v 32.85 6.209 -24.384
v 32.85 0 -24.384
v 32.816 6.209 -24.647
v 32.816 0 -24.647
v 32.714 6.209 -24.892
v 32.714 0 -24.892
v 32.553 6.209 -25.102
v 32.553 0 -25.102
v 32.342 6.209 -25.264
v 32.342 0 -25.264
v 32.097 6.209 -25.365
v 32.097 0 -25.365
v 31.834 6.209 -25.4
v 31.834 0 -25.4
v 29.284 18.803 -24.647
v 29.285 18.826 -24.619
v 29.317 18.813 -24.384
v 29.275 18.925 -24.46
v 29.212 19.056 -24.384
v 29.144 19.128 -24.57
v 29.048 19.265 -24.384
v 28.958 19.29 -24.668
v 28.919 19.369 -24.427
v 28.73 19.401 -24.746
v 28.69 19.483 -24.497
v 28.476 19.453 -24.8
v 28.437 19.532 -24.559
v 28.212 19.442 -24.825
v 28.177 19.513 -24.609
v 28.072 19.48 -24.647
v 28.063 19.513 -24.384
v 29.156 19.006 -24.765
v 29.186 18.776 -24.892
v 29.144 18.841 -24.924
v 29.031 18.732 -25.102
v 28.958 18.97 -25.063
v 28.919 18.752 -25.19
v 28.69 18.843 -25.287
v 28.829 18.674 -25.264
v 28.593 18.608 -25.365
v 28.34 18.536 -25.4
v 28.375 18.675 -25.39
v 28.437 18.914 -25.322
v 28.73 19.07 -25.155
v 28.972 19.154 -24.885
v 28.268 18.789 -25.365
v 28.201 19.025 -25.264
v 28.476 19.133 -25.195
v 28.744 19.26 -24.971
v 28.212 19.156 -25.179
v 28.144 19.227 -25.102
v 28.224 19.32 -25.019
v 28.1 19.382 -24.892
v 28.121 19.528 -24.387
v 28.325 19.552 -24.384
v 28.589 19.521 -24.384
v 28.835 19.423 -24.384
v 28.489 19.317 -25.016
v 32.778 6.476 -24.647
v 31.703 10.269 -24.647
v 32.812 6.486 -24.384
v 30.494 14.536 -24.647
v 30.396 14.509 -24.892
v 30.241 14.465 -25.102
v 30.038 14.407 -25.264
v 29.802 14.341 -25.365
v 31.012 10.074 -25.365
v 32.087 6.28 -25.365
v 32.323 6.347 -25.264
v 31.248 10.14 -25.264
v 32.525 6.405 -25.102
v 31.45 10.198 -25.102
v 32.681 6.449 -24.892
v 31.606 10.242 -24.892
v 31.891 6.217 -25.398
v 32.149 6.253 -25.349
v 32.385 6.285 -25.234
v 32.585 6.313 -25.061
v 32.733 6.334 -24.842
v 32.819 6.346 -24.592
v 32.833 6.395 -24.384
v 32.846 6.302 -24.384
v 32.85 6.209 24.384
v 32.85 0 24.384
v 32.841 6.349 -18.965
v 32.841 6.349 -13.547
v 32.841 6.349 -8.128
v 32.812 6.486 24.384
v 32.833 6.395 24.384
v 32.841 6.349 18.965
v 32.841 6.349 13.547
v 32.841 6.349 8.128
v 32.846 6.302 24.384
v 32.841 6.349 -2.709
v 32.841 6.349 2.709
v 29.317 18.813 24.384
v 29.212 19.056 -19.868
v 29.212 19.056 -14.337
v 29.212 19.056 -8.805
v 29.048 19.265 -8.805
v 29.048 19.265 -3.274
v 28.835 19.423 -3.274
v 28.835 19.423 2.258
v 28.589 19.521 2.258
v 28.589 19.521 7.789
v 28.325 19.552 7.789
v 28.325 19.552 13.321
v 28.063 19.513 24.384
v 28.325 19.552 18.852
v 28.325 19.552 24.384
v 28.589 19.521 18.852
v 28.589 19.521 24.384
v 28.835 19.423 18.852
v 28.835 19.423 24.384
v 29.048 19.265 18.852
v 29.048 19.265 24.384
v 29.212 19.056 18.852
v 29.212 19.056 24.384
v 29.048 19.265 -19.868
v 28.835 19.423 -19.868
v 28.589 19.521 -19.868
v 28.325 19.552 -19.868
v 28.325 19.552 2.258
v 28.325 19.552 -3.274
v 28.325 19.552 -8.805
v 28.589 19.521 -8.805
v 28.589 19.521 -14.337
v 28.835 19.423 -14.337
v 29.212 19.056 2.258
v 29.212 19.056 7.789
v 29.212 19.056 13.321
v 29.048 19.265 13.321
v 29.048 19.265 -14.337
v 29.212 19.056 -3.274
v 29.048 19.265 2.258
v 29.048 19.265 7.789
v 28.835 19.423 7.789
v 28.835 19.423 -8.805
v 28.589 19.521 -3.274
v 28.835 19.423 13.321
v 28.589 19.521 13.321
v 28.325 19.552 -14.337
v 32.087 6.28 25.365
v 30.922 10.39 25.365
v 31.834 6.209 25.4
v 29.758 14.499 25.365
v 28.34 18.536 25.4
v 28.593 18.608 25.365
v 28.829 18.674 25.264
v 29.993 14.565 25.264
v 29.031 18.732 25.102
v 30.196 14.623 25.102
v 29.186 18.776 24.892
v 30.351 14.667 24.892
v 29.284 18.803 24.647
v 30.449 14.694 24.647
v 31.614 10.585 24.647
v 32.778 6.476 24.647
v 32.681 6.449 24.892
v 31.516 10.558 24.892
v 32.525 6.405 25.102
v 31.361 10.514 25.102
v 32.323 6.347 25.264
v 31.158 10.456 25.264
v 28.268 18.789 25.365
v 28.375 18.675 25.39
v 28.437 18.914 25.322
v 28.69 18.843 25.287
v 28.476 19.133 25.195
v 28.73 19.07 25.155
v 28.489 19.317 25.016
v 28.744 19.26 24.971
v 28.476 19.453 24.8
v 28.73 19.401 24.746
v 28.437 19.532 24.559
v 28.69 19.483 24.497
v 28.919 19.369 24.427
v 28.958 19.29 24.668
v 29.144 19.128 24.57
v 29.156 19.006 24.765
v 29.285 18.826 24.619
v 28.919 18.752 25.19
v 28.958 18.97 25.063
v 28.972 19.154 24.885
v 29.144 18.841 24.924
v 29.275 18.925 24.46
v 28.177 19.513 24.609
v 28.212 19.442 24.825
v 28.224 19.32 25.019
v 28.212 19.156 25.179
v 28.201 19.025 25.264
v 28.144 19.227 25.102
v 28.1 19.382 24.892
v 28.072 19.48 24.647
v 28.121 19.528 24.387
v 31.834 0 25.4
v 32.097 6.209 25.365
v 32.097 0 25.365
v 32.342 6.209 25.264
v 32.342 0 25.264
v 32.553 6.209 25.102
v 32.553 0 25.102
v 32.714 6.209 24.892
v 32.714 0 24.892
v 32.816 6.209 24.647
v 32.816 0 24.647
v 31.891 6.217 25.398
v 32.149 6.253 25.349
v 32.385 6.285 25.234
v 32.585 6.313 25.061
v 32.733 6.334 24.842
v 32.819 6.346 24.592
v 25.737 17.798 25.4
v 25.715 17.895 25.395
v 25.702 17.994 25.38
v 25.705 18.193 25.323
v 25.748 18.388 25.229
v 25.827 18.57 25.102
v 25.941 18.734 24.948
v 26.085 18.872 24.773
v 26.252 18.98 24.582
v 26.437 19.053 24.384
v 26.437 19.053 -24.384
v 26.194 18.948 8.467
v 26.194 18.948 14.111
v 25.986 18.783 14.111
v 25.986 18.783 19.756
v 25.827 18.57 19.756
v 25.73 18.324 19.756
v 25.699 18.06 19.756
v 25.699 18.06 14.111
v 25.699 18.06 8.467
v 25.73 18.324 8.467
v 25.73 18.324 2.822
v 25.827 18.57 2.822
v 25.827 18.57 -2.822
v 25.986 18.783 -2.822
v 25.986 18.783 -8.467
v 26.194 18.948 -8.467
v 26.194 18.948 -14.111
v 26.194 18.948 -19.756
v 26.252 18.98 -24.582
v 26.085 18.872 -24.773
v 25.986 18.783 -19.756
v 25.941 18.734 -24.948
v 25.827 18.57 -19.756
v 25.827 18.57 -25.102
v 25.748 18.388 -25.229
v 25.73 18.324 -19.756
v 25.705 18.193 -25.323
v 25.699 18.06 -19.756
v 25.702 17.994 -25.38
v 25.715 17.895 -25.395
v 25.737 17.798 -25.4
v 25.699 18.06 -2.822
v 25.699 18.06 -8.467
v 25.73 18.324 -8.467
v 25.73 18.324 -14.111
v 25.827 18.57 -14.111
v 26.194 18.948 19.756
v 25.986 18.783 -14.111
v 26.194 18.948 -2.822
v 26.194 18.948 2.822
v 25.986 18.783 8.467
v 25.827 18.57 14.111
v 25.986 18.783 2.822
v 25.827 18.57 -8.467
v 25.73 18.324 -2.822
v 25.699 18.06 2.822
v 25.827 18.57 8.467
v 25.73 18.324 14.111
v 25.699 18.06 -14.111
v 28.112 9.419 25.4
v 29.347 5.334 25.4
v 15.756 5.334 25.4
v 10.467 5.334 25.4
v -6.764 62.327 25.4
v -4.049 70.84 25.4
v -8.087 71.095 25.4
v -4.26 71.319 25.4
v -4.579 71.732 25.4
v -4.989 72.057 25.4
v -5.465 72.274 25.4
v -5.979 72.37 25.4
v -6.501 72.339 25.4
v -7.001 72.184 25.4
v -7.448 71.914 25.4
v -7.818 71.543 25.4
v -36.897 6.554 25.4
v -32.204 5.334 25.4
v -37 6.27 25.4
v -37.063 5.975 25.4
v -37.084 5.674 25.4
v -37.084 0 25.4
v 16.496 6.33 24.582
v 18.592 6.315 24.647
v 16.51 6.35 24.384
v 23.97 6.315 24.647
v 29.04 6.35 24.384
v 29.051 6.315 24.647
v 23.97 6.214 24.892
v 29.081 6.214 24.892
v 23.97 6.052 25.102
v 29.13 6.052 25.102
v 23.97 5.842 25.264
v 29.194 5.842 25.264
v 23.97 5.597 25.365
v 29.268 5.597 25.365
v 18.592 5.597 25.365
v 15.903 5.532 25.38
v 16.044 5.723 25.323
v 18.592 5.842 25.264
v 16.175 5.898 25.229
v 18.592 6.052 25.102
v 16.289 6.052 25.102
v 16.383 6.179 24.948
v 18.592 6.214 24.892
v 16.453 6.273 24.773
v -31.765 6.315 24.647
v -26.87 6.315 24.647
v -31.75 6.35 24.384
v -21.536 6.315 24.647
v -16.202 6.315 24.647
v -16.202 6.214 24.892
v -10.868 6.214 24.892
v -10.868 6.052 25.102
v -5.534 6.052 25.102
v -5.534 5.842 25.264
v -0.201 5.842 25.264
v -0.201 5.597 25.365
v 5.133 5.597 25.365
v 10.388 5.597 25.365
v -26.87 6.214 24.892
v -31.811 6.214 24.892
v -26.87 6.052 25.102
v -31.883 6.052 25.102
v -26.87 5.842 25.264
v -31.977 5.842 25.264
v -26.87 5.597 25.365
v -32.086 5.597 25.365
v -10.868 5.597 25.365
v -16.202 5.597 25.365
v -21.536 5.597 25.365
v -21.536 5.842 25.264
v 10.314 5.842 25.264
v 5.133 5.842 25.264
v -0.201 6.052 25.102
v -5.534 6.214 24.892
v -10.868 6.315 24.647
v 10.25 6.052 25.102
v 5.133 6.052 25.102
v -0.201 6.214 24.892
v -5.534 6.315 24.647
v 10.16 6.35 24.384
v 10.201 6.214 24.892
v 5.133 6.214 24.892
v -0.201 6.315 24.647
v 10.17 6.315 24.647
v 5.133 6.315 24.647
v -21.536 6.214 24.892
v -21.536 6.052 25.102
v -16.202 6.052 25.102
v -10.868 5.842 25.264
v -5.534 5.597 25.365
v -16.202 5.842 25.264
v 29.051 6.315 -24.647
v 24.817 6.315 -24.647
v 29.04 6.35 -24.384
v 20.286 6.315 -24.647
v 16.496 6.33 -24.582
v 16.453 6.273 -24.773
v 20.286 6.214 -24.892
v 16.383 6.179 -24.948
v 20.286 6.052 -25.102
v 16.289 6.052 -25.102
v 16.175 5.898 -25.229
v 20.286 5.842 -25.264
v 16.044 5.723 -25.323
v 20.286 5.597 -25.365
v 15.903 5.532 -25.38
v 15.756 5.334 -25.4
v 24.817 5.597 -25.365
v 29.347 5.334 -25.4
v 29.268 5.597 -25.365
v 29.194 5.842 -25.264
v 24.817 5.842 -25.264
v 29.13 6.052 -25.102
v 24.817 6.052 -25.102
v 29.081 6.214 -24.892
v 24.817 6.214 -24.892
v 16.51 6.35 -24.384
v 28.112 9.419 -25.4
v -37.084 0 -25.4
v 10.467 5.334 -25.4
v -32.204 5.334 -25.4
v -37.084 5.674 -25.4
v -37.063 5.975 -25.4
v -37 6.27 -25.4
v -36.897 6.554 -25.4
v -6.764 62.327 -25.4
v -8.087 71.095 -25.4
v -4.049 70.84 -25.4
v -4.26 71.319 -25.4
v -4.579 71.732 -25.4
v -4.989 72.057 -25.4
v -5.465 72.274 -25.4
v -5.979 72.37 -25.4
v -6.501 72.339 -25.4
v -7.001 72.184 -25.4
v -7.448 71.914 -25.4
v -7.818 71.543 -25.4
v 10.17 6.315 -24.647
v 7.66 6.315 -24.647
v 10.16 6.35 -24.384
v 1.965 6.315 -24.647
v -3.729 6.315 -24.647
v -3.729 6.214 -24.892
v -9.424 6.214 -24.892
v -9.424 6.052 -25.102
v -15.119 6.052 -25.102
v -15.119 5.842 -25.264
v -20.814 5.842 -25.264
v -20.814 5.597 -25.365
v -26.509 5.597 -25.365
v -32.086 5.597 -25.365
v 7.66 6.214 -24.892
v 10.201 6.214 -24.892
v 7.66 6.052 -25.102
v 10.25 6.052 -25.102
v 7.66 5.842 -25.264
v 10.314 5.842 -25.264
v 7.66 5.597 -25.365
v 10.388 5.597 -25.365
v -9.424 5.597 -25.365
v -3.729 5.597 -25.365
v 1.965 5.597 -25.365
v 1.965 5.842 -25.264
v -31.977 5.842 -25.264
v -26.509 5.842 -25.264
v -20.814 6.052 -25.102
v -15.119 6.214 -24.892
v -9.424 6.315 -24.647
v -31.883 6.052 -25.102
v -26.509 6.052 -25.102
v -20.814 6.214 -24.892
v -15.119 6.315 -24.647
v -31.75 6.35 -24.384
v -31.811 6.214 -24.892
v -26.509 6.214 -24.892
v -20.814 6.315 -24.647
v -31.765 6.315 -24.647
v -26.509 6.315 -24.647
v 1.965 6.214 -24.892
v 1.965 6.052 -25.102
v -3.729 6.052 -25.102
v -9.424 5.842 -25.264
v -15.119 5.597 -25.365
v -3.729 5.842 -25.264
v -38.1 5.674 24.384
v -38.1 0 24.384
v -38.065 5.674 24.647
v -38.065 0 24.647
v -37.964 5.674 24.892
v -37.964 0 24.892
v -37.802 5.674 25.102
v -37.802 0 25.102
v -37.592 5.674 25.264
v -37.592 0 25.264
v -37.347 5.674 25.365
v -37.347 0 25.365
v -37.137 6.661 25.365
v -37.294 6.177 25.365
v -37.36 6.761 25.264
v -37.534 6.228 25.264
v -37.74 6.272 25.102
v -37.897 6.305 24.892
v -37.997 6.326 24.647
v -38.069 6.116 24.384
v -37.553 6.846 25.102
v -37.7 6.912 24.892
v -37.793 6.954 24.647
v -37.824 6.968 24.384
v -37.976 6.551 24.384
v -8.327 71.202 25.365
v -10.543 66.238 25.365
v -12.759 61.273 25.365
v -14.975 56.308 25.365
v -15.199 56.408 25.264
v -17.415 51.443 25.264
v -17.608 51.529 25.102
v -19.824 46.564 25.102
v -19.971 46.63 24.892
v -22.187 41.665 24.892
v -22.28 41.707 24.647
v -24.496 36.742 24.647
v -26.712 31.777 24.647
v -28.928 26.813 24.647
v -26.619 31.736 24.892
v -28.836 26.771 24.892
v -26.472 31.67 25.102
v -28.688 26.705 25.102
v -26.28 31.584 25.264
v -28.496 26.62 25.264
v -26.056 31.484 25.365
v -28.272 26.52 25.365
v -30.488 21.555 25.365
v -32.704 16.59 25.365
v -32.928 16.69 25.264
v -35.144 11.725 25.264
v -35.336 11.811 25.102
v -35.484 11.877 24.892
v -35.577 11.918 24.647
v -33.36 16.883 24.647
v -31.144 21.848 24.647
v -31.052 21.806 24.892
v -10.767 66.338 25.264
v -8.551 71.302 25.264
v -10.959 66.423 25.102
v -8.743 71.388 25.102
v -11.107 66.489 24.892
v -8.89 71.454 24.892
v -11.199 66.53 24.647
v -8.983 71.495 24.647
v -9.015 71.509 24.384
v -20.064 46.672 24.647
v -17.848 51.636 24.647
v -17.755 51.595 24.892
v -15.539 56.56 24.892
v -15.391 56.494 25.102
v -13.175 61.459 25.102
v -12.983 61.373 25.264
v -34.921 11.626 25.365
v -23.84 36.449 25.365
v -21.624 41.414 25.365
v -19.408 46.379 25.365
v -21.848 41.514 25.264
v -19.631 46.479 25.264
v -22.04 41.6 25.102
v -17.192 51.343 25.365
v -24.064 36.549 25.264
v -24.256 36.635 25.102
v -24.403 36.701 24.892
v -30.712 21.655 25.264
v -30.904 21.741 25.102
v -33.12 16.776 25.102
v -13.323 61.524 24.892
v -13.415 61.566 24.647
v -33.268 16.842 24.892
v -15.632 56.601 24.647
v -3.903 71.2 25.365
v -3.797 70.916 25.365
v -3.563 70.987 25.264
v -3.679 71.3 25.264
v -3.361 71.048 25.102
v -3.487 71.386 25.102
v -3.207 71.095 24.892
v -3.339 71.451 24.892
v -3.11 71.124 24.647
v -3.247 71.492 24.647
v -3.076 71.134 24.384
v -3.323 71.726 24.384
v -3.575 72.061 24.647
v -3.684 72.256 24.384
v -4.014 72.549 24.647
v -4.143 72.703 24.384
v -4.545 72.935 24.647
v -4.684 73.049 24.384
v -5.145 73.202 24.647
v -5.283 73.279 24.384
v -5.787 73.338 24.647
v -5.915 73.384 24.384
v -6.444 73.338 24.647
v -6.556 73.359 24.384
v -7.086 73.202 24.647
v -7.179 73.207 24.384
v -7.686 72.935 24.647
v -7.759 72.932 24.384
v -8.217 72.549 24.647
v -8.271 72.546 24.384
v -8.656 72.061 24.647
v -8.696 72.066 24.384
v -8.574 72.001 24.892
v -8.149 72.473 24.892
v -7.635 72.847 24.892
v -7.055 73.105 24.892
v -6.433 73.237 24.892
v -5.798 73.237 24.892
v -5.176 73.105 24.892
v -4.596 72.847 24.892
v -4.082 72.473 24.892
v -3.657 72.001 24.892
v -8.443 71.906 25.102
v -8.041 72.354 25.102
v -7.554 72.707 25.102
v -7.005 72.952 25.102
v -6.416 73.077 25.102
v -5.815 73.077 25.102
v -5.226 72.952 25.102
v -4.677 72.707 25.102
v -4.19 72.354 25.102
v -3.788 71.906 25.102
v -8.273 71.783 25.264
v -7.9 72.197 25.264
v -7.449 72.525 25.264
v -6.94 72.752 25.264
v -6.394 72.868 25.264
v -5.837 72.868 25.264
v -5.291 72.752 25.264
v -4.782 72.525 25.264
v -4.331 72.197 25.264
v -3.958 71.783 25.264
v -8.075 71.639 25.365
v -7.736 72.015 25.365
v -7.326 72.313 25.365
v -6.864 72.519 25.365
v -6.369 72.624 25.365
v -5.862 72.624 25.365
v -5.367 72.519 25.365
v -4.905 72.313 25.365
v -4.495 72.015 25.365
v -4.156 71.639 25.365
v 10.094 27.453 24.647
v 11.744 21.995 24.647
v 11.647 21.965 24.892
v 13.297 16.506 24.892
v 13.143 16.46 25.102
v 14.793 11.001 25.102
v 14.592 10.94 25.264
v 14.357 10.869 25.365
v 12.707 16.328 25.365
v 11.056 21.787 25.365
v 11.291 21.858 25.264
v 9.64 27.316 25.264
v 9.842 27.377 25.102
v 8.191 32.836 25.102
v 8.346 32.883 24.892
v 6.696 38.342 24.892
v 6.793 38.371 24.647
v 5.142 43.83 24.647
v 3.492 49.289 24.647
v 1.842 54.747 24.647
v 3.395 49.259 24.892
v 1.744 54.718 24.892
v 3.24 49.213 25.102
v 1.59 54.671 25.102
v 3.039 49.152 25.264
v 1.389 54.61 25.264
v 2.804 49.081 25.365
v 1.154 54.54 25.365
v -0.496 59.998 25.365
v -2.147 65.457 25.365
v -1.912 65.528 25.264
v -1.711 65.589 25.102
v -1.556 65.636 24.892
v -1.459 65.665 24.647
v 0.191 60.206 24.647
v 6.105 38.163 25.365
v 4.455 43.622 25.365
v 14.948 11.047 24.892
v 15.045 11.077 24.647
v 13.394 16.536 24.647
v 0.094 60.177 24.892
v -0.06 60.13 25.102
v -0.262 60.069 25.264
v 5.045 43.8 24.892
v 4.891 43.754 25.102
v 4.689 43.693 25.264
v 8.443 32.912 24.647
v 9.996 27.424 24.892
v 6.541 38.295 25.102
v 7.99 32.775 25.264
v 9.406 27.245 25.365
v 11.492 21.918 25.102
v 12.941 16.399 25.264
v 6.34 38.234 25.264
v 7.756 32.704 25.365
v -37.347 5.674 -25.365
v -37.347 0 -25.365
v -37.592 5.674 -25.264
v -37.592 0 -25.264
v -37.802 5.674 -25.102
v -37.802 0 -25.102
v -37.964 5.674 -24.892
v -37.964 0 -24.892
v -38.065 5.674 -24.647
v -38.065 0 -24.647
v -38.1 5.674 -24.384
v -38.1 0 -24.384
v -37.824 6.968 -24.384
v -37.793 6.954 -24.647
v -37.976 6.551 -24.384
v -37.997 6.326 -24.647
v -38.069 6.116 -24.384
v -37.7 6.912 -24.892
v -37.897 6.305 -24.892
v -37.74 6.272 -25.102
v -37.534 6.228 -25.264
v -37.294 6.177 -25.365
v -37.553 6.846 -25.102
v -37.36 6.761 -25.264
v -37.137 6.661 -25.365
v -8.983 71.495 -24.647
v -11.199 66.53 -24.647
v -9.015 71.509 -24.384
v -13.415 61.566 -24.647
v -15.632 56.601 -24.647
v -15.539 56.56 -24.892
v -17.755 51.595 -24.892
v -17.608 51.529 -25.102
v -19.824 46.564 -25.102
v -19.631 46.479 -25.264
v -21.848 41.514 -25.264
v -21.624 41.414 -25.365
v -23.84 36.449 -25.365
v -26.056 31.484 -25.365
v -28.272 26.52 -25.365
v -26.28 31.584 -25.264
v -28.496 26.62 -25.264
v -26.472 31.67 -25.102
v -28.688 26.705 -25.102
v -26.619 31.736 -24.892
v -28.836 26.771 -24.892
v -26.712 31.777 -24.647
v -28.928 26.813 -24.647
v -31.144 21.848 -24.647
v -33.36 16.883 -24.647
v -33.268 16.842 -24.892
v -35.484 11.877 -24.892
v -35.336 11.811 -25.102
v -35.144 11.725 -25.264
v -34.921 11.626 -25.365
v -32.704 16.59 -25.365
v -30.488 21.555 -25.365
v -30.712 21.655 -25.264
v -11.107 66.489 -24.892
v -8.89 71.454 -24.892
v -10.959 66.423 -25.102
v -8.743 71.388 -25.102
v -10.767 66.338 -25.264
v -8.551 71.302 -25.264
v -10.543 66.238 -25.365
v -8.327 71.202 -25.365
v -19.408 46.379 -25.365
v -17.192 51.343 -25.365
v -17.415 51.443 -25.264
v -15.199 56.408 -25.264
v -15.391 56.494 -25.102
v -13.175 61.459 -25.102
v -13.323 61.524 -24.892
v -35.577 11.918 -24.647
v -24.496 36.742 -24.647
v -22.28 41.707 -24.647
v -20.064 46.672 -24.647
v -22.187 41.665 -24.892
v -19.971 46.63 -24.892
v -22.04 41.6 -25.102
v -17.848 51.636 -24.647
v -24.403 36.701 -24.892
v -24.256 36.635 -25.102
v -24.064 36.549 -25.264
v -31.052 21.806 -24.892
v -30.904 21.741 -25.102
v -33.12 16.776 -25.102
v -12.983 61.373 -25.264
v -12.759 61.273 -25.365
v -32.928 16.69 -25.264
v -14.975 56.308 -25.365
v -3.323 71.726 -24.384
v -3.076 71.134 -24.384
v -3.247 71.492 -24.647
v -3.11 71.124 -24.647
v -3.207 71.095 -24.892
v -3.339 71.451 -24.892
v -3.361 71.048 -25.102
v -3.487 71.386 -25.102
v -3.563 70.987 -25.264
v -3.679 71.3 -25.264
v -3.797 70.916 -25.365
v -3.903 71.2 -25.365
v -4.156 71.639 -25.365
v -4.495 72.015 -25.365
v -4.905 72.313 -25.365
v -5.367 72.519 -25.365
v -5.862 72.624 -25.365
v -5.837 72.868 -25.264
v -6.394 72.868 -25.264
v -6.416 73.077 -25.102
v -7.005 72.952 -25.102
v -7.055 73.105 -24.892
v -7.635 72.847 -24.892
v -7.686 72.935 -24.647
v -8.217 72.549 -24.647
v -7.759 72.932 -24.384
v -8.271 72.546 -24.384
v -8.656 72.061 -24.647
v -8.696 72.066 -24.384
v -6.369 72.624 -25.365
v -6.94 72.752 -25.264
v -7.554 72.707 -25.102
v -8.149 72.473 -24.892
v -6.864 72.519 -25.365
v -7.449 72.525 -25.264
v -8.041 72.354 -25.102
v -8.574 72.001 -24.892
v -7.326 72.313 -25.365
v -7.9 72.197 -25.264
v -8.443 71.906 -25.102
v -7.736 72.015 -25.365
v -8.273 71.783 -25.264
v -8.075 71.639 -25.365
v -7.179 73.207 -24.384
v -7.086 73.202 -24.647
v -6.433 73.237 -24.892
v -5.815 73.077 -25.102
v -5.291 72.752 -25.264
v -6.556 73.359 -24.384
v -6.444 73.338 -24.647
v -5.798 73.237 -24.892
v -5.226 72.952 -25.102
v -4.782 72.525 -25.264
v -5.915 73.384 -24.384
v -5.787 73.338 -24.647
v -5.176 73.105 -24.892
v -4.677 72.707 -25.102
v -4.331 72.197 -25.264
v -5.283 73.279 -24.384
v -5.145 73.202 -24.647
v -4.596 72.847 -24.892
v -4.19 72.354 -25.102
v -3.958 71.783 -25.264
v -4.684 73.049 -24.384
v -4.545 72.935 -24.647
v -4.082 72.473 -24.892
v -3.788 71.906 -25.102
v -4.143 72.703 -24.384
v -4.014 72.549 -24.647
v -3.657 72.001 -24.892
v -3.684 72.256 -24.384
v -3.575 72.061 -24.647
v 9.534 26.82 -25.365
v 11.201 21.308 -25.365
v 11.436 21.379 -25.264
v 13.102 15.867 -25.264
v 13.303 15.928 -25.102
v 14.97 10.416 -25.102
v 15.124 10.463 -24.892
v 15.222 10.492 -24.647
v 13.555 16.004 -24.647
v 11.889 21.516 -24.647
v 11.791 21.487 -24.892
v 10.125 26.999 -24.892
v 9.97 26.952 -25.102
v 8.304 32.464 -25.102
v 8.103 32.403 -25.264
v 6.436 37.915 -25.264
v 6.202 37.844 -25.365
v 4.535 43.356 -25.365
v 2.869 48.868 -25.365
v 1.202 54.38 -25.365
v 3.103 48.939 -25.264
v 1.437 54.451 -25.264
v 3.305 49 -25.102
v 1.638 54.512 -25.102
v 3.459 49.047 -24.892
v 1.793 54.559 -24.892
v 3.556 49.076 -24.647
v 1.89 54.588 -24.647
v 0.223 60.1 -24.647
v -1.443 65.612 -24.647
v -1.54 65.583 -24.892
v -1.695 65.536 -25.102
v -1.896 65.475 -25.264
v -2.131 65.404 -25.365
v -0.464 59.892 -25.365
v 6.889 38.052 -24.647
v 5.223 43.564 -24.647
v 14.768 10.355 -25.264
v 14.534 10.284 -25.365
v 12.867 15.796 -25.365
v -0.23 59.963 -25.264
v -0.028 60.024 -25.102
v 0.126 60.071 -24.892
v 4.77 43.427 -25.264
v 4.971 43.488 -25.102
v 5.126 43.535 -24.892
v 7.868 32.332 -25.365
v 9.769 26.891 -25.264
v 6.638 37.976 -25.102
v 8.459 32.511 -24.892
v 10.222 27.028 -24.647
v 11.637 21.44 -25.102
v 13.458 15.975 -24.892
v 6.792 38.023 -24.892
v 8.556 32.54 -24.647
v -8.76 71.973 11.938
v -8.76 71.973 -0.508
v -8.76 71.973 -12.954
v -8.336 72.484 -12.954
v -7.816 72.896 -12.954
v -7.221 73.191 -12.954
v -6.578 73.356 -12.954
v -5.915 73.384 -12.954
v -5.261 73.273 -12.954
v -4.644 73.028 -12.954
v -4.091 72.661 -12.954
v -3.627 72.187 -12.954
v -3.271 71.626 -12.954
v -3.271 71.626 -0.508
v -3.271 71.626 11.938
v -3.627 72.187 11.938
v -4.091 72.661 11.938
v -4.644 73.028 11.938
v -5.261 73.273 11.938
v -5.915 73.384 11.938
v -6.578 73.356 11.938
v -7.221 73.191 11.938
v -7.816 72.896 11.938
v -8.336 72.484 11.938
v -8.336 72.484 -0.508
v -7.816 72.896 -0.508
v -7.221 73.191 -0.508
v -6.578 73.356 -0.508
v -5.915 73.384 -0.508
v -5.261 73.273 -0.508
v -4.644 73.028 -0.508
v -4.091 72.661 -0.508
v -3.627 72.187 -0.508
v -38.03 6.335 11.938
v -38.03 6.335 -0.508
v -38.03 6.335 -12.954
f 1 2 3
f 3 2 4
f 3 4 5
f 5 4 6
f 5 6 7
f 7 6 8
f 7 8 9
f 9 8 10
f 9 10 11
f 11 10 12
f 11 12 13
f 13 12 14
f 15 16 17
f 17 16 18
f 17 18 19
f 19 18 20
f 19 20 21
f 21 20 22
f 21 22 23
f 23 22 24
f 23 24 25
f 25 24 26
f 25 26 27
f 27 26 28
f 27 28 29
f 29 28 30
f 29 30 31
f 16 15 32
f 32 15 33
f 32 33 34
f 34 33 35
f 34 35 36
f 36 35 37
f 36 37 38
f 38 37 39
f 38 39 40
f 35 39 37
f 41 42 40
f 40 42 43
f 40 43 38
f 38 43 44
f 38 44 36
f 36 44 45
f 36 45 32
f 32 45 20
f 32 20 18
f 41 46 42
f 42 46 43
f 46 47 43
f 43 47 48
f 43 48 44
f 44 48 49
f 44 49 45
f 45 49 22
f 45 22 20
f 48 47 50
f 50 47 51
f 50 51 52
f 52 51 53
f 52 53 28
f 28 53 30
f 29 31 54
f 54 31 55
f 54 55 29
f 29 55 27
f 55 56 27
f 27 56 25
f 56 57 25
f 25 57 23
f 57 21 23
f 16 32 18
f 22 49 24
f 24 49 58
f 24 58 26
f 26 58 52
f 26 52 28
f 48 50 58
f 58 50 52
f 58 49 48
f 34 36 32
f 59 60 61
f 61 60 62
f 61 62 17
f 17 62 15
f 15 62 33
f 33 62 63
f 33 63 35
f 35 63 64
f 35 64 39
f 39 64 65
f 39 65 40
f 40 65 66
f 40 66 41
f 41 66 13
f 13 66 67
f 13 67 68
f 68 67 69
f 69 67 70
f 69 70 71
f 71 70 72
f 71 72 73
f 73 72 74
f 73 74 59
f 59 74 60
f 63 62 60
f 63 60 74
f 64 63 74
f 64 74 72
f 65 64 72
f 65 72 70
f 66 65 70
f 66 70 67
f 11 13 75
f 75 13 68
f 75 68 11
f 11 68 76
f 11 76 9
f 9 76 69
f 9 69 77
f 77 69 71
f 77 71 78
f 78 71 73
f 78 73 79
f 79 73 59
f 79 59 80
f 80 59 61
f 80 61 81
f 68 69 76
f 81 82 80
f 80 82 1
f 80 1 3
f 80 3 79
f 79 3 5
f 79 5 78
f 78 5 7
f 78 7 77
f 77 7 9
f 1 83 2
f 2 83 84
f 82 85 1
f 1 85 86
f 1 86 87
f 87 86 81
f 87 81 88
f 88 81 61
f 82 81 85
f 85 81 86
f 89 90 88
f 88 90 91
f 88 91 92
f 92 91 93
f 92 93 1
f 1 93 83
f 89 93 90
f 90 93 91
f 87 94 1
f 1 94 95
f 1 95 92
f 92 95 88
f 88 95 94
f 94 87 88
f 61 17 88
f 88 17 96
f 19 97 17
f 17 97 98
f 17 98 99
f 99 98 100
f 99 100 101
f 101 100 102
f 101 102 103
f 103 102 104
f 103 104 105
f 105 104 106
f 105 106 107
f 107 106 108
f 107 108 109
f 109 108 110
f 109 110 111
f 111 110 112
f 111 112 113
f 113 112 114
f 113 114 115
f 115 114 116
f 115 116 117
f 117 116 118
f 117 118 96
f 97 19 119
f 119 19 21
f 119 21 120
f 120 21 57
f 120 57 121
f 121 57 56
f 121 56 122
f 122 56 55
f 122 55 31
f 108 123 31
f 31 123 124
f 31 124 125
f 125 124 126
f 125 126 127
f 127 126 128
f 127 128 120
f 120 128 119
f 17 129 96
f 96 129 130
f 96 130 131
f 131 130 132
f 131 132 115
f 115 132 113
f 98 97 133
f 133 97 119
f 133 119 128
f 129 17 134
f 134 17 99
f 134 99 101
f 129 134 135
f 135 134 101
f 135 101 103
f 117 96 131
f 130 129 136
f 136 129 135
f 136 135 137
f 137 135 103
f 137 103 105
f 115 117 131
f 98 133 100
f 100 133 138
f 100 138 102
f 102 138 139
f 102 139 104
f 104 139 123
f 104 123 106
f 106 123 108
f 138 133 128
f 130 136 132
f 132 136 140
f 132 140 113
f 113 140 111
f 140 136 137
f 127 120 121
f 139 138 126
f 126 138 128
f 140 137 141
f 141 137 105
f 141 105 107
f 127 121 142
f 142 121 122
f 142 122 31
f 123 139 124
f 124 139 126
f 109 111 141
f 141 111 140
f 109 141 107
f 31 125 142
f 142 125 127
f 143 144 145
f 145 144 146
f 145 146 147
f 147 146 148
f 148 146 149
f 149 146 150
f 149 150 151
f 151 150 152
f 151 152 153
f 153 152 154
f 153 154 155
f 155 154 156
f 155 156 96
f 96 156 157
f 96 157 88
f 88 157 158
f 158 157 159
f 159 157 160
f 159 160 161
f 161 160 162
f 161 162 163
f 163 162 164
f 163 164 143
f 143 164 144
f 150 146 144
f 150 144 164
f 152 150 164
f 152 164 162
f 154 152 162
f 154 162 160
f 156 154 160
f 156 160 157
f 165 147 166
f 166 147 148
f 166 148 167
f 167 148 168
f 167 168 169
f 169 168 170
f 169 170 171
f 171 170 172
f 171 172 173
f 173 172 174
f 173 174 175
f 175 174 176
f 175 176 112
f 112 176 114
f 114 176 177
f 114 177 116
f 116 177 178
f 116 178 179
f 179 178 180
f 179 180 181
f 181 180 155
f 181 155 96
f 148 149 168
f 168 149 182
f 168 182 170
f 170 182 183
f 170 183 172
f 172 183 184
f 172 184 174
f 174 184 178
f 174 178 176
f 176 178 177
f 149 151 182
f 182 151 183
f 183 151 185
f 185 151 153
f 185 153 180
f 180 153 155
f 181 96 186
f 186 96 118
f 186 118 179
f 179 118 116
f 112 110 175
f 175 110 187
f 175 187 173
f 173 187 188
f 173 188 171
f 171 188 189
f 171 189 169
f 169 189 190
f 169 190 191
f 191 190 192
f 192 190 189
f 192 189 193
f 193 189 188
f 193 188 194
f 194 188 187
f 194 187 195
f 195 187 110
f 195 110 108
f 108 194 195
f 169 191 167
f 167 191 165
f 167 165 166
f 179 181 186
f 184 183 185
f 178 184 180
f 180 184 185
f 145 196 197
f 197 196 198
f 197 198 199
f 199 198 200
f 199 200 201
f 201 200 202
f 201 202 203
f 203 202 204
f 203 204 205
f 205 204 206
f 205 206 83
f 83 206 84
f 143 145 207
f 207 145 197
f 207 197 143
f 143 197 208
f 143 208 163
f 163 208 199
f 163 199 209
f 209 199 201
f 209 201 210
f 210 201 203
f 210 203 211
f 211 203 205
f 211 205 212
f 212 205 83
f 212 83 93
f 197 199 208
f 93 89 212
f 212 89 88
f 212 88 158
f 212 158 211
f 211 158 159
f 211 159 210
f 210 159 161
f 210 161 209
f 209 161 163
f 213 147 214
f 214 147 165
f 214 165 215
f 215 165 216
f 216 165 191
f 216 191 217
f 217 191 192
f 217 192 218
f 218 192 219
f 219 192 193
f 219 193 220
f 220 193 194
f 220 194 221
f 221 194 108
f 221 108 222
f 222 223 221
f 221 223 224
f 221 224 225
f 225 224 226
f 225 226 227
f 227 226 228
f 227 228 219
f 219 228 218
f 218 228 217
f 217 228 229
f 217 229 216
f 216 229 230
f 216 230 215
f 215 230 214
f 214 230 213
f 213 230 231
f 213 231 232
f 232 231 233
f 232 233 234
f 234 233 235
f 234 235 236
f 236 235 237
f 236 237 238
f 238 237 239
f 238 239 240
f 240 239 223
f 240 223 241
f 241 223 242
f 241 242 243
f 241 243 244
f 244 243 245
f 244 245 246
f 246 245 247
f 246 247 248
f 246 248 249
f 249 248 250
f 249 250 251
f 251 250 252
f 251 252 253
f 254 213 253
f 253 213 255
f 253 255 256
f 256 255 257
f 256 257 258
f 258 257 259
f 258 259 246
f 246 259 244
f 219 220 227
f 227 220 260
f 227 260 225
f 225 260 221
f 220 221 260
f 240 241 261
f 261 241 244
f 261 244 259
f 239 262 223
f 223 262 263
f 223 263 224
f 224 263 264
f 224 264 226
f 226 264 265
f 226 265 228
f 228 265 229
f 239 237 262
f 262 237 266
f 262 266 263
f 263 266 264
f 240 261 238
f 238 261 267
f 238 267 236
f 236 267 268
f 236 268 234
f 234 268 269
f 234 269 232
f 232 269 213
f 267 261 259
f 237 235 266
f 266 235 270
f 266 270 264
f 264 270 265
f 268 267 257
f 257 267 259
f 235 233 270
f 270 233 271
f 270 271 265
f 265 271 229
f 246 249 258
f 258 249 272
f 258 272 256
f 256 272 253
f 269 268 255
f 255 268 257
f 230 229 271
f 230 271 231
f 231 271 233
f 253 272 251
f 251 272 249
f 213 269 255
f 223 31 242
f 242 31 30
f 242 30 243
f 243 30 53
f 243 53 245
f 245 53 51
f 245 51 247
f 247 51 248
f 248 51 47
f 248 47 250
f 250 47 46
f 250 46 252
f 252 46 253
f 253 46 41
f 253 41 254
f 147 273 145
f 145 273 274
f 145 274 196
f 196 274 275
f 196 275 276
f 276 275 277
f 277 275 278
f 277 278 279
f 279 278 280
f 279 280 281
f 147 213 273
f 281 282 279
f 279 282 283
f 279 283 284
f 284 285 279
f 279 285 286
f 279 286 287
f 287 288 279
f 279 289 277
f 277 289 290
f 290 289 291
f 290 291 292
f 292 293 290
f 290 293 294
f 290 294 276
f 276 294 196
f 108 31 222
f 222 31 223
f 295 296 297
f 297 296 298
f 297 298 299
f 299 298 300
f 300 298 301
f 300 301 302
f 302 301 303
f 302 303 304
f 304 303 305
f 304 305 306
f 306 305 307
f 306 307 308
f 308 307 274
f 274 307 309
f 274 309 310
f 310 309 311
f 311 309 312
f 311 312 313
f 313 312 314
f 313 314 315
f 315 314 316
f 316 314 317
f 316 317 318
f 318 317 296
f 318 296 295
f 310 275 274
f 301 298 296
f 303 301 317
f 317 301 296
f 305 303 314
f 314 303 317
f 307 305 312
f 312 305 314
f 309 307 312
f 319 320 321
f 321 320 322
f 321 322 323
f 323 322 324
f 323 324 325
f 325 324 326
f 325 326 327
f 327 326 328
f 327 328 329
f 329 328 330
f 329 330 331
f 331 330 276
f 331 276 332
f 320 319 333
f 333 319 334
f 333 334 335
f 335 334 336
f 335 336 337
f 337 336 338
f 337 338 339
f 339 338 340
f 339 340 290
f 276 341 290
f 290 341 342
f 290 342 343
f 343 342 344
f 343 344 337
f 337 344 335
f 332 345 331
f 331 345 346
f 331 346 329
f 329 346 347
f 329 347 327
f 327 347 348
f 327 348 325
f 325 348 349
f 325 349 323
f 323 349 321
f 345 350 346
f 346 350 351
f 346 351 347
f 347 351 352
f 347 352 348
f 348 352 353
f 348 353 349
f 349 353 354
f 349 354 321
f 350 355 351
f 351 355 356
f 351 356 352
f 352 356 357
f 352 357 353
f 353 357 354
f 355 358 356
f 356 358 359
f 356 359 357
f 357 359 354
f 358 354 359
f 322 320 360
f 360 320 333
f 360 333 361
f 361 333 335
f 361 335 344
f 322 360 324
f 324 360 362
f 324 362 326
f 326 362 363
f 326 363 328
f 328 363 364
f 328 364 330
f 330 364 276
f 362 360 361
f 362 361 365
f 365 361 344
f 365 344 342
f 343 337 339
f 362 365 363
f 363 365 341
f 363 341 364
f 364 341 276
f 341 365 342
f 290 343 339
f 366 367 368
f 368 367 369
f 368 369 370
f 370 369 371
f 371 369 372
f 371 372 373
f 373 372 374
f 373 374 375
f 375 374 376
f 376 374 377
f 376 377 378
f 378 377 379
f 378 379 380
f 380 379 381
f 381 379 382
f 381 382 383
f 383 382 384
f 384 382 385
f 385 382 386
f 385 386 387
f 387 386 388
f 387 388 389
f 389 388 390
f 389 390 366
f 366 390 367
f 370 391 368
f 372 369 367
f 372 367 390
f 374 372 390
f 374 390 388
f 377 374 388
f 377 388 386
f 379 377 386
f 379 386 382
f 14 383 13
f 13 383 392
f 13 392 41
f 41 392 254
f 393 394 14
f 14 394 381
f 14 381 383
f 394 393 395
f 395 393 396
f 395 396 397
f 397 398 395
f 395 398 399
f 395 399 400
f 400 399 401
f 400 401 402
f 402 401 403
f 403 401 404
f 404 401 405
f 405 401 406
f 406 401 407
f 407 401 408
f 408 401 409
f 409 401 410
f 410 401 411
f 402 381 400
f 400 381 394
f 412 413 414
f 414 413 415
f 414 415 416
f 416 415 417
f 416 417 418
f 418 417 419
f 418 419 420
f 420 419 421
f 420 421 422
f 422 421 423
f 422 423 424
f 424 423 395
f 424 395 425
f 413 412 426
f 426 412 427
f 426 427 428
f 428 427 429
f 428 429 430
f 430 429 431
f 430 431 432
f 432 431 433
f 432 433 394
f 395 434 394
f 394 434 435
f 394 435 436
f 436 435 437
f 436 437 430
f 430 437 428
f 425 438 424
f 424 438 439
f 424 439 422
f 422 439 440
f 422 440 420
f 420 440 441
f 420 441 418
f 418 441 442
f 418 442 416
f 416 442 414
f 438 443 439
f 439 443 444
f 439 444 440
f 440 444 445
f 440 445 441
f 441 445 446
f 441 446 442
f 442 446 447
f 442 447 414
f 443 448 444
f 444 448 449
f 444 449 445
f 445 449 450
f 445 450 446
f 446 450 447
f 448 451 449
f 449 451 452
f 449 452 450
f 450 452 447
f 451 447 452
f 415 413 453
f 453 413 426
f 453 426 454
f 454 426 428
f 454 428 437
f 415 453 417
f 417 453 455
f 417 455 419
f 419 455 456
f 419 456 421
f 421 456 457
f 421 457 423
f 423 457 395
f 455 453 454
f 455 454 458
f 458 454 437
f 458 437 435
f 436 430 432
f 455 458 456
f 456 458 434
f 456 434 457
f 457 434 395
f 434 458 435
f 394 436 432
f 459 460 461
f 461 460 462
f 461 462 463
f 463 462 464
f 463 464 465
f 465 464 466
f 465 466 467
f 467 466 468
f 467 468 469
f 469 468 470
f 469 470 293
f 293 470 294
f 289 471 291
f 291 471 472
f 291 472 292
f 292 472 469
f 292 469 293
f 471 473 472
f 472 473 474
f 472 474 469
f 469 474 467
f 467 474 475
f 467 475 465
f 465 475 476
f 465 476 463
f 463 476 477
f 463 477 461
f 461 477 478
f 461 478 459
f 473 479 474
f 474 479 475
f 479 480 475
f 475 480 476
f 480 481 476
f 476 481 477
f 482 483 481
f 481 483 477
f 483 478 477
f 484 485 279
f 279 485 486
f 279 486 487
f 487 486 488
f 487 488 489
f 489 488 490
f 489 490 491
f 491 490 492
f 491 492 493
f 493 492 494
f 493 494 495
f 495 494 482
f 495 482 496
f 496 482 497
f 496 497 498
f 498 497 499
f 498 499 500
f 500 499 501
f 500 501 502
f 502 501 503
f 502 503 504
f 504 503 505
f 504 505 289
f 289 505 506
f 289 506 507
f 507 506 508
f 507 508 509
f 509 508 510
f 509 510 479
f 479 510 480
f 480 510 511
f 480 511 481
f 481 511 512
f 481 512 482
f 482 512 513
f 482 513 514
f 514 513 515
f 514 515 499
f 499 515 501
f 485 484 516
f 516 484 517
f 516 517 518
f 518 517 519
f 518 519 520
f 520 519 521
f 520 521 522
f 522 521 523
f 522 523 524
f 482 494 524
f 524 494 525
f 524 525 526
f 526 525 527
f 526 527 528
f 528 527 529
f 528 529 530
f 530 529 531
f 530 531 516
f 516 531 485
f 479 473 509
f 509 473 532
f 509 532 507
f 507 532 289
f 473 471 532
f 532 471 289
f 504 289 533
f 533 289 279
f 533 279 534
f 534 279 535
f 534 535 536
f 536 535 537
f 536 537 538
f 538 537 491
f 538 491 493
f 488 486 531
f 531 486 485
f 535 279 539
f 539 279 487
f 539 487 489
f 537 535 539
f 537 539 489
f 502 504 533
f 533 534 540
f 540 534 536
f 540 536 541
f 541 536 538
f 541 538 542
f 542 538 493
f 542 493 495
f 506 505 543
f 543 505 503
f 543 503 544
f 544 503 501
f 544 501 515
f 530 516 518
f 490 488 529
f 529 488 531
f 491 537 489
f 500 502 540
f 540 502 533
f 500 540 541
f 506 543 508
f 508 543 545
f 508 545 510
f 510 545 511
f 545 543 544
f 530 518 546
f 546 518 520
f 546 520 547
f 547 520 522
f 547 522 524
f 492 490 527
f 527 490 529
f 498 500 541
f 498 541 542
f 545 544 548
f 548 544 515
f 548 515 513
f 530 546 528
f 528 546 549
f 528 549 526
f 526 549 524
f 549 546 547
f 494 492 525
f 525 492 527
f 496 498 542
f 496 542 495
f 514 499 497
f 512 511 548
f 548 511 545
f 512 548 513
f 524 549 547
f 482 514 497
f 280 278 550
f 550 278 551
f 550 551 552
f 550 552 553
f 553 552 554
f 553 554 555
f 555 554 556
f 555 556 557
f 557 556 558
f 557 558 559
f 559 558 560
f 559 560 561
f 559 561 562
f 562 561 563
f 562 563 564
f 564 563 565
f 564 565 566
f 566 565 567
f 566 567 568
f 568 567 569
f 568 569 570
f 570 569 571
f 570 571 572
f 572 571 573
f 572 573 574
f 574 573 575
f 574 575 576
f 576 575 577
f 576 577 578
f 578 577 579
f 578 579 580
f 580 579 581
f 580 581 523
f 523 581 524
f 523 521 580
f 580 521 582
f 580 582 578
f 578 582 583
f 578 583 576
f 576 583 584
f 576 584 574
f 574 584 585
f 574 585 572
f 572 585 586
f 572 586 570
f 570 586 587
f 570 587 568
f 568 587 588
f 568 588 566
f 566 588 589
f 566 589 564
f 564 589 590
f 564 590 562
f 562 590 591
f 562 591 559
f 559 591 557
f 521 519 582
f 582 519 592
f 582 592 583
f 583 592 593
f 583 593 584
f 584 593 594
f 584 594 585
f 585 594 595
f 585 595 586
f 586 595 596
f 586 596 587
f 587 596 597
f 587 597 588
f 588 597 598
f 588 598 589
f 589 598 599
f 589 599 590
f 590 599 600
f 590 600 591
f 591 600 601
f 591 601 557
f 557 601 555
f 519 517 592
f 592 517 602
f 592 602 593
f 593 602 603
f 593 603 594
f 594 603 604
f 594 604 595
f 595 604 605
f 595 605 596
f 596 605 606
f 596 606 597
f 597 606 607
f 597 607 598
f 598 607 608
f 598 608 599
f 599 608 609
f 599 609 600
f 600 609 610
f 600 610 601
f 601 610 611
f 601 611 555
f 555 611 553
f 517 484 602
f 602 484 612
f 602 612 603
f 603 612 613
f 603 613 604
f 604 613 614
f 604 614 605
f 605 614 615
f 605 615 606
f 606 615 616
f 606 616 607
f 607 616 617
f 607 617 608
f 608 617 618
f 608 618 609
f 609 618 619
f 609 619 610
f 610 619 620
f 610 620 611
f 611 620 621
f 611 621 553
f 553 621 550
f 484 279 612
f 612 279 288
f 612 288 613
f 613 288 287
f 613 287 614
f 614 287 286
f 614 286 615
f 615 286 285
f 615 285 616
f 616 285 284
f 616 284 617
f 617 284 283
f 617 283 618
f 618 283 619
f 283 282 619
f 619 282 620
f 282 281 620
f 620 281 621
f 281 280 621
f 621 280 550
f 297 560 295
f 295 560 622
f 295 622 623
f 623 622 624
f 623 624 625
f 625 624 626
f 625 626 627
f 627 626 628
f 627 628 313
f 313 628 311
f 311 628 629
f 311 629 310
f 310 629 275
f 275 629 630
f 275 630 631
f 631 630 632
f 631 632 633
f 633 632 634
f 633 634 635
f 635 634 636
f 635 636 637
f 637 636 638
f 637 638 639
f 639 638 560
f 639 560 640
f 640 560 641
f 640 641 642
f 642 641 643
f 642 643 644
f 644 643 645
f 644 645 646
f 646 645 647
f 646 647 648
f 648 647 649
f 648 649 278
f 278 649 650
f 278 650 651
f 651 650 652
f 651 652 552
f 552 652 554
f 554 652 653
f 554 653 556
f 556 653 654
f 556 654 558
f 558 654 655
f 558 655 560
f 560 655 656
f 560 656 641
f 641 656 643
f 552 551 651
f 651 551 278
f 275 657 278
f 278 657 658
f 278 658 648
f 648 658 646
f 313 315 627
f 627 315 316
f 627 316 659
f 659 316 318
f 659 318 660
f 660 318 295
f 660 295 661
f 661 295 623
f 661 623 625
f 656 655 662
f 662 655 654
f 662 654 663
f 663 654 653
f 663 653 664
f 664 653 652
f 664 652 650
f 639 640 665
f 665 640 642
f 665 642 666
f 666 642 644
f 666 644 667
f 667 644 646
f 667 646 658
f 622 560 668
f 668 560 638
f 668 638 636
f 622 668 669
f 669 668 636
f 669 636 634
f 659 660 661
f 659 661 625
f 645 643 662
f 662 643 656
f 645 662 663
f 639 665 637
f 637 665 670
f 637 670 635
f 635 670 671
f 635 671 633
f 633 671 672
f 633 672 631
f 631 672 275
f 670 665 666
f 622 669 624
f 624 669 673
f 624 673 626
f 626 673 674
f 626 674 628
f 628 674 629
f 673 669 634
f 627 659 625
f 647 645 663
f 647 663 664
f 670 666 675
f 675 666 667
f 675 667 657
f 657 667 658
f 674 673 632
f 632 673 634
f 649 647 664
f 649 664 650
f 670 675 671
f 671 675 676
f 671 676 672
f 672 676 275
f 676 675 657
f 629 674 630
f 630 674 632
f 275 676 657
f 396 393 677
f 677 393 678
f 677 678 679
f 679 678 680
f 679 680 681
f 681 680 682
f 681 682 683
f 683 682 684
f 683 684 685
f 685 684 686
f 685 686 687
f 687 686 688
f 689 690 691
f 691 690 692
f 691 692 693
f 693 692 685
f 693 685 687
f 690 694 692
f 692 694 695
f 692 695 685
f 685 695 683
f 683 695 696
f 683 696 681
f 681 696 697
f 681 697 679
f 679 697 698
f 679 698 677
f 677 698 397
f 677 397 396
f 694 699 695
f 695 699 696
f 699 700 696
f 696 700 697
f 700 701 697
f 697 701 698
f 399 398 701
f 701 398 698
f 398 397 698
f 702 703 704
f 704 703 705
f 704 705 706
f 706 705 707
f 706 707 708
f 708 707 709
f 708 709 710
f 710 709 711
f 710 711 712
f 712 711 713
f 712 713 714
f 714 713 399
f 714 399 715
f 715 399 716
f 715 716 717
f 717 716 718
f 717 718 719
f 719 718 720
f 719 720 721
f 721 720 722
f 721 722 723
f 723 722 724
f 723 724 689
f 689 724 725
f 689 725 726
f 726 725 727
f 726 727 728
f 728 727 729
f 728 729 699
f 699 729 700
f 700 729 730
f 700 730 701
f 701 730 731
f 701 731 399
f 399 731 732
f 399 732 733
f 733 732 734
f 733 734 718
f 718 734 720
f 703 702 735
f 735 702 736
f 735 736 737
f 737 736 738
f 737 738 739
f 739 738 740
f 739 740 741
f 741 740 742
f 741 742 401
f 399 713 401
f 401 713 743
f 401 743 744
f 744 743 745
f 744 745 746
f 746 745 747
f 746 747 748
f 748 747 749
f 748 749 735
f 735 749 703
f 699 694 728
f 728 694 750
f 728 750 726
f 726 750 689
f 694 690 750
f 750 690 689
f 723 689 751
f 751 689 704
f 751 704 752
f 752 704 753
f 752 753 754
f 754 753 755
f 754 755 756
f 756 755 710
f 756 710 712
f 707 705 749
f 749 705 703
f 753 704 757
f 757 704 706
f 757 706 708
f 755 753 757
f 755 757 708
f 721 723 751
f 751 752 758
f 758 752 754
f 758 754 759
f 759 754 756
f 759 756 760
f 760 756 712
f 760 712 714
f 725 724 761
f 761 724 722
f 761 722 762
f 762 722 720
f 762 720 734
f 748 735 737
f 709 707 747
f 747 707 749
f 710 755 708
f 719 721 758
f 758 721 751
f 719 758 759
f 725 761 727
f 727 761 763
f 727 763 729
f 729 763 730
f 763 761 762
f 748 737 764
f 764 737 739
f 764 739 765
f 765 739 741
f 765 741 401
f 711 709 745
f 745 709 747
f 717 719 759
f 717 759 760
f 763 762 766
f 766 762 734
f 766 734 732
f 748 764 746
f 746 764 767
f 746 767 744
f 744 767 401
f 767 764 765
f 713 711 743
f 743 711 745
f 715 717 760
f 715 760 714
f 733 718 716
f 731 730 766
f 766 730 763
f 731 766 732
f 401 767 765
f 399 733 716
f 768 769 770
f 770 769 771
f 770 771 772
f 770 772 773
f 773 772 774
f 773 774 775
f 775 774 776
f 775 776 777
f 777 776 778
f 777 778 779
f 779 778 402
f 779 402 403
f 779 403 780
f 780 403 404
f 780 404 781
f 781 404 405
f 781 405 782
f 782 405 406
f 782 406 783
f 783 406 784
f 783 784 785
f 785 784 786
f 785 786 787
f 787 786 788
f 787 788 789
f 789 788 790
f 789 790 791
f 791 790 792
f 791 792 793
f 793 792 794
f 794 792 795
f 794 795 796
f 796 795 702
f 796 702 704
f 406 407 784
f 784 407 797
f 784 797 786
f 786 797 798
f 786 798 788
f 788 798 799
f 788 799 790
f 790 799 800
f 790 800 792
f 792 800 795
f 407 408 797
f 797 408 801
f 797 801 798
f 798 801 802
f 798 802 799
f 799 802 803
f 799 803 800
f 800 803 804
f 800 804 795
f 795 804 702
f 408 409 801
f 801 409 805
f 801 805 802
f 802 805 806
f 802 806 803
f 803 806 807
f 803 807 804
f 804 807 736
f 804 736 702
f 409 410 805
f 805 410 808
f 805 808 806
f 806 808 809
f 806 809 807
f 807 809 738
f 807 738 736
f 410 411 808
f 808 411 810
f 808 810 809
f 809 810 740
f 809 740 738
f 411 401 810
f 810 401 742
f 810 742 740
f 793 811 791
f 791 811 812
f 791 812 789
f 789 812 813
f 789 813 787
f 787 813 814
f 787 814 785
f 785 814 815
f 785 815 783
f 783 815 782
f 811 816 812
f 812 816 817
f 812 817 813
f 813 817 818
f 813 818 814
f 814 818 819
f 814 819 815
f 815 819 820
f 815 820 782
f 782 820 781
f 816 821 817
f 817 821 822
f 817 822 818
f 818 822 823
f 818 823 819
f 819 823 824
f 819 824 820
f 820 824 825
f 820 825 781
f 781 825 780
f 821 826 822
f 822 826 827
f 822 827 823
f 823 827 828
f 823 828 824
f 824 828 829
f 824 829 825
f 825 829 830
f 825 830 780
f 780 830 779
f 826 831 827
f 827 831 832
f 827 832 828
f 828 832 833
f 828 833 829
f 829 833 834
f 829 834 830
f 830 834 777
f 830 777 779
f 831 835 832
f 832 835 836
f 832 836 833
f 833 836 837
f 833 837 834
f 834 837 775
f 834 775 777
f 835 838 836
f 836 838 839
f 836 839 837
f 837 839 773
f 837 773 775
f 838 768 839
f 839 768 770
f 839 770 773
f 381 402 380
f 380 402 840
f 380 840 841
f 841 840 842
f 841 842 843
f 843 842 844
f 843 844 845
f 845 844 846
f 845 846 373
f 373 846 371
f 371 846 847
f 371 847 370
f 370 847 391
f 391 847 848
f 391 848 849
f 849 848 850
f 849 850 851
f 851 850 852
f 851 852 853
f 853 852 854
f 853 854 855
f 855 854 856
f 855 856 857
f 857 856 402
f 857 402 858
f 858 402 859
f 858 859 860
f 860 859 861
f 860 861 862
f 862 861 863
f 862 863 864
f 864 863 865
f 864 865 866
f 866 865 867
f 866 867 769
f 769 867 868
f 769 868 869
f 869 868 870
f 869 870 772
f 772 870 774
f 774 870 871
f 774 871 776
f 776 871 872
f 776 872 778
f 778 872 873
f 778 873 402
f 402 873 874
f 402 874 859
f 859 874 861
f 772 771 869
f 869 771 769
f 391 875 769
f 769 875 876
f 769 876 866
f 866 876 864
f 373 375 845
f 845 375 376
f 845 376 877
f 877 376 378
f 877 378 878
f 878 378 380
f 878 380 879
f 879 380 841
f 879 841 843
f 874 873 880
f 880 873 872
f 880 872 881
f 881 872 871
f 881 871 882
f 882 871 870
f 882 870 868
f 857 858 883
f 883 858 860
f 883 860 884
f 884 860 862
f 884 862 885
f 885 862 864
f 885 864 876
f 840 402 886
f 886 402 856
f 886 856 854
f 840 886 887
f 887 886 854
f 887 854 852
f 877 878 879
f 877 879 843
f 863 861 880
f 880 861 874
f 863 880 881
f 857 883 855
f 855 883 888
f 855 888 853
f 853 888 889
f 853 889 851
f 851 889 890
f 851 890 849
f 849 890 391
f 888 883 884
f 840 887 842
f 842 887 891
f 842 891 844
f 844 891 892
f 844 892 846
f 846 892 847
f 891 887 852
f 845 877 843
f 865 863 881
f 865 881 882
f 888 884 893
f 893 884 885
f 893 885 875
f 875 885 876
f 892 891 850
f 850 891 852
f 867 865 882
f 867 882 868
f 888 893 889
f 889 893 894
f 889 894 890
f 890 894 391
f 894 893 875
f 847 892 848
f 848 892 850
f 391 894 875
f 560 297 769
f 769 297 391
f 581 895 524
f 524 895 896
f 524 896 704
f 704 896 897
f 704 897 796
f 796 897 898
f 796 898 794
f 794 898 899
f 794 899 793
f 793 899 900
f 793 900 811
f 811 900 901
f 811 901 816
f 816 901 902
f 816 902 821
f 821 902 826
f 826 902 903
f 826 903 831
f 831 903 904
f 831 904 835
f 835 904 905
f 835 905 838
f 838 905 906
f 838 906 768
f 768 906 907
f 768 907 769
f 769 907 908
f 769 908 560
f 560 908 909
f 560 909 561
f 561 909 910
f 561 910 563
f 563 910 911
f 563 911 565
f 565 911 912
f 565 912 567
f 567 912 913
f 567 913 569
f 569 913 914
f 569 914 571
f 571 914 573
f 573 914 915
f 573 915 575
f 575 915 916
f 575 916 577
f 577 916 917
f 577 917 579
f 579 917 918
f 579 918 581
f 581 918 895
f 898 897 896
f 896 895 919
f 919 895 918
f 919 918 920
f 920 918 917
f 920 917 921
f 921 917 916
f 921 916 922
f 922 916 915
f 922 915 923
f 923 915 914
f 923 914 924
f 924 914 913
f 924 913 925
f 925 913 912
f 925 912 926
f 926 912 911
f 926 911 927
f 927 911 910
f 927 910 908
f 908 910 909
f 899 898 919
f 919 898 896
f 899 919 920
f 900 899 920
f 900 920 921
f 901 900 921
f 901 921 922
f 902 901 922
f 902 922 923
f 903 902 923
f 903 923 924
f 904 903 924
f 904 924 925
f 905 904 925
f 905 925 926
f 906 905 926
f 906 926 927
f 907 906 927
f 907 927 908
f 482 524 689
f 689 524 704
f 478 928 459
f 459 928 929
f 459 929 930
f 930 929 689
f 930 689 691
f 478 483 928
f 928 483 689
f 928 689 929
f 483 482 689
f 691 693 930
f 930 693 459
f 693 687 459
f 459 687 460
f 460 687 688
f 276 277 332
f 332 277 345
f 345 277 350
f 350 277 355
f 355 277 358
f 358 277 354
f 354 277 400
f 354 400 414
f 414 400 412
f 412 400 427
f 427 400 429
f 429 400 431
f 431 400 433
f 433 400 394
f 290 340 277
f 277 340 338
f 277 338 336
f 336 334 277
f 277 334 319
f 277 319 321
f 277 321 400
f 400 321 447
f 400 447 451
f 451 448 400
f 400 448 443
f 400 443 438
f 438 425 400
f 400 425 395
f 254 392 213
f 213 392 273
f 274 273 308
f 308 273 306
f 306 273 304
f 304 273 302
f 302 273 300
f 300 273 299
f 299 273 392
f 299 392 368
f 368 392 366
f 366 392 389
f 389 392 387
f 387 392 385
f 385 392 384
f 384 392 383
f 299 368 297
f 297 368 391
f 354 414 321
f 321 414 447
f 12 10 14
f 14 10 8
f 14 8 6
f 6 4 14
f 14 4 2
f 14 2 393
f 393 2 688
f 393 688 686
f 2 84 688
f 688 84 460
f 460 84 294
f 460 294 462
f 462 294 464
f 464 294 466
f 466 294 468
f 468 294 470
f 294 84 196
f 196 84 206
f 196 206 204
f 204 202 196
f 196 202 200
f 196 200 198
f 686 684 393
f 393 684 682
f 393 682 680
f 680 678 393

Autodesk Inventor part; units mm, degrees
ref_plane "YZ Plane" through (0, 0, 0) normal (1, 0, 0) x (0, 1, 0)
ref_plane "XZ Plane" through (0, 0, 0) normal (0, 1, 0) x (-1, 0, 0)
ref_plane "XY Plane" through (0, 0, 0) normal (0, 0, 1) x (1, 0, 0)
sketch "Sketch1" plane through (0, 0, 0) normal (0, 1, 0) x (-1, 0, 0)
  line L0 (-38.1, -25.4) -> (38.1, -25.4)
  line L1 (38.1, -25.4) -> (38.1, 25.4)
  line L2 (38.1, 25.4) -> (-38.1, 25.4)
  line L3 (-38.1, 25.4) -> (-38.1, -25.4)
  line L4 (-38.1, -25.4) -> (38.1, 25.4) construction
  line L5 (38.1, -25.4) -> (-38.1, 25.4) construction
  point P0 (0, 0)
  dimension "d0" = 76.2
  dimension "d1" = 50.8
extrude "Extrusion1" add sketch "Sketch1" along normal blind 6.35
sketch "Sketch2" plane through (38.1, 0, -25.4) normal (0, 0, -1) x (-1, 0, 0)
  line L0 (76.2, 6.35) -> (0, 6.35) projected
  line L1 (0, 6.35) -> (21.59, 6.35)
  line L2 (21.59, 6.35) -> (43.642, 79.2894)
  line L3 (76.2, 0) -> (76.2, 6.35) projected
  line L4 (43.642, 79.2894) -> (76.2, 6.35)
  line L5 (76.2, 6.35) -> (69.85, 6.35)
  line L6 (69.85, 6.35) -> (44.8636, 62.3267)
  line L7 (21.59, 6.35) -> (27.94, 6.35) construction
  line L8 (27.94, 6.35) -> (44.8636, 62.3267)
  line L9 (0, 6.35) -> (76.2, 6.35) projected
  line L10 (10.1092, 9.821) -> (9.0598, 6.35)
  line L11 (9.0598, 6.35) -> (5.2498, 6.35)
  line L12 (5.2498, 6.35) -> (9.0598, 19.7904)
  line L13 (9.0598, 19.7904) -> (12.64, 18.7755)
  line L14 (12.64, 18.7755) -> (9.9878, 9.4194)
  point P0 (38.1, 0)
  point P1 (5.2498, 6.35)
  point P2 (9.0598, 6.35)
  dimension "d4" = 21.59
  dimension "d5" = 76.2
  dimension "d6" = 6.35
  dimension "d7" = 6.35
  dimension "d9" = 11.4808
  dimension "d10" = 3.81
  dimension "d11" = 13.97
  dimension "d23" = 73.178
extrude "Extrusion2" add sketch "Sketch2" against normal up to surface (50.8 mm away) contours L0 L6 L8 L2 L4 | L0 L12 L13 L14 L10
sketch "Sketch3" plane through (0, 6.35, 0) normal (0, 1, 0) x (1, 0, 0)
  line L0 (32.8502, -25.4) -> (38.1, -25.4) projected
  line L1 (38.1, 25.4) -> (32.8502, 25.4) projected
  line L2 (32.8502, -25.4) -> (38.1, -25.4)
  line L3 (38.1, -25.4) -> (38.1, 25.4)
  line L4 (38.1, 25.4) -> (32.8502, 25.4)
  line L5 (32.8502, 25.4) -> (32.8502, -25.4)
  point P0 (0, 0)
extrude "Extrusion3" cut sketch "Sketch3" against normal blind 6.35
fillet "Fillet1" radius 1.016 1 edges at (32.8502, 6.35, 0)
fillet "Fillet2" radius 3.175 1 edges at (-5.542, 79.2894, 0)
fillet "Fillet3" radius 3.175 1 edges at (-38.1, 6.35, 0)
fillet "Fillet4" radius 1.016 10 edges at (-5.9152, 73.3838, -25.4) (-23.4195, 39.2385, -25.4) (-38.0303, 6.3352, -25.4) (-38.1, 2.8368, -25.4) (6.7168, 38.742, -25.4) (-5.9152, 73.3838, 25.4) (6.7168, 38.742, 25.4) (-38.0303, 6.3352, 25.4) (-38.1, 2.8368, 25.4) (-23.4195, 39.2385, 25.4)
fillet "Fillet5" radius 1.016 6 edges at (-10.795, 6.35, -25.4) (15.9793, 6.35, -25.4) (22.7751, 6.35, -25.4) (-10.795, 6.35, 25.4) (15.9793, 6.35, 25.4) (22.7751, 6.35, 25.4)
fillet "Fillet6" radius 1.016 4 edges at (27.2501, 19.283, -25.4) (27.2501, 19.283, 25.4) (29.0402, 19.7904, 0) (25.46, 18.7755, 0)
fillet "Fillet7" radius 1.016 8 edges at (32.8405, 6.3487, 25.4) (31.0645, 12.6494, 25.4) (28.8351, 19.423, 25.1024) (32.8502, 3.1044, 25.4) (32.8405, 6.3487, -25.4) (31.0645, 12.6494, -25.4) (28.8351, 19.423, -25.1024) (32.8502, 3.1044, -25.4)
equation "\"d12\" = d7"
properties part number "_3DPrint"
